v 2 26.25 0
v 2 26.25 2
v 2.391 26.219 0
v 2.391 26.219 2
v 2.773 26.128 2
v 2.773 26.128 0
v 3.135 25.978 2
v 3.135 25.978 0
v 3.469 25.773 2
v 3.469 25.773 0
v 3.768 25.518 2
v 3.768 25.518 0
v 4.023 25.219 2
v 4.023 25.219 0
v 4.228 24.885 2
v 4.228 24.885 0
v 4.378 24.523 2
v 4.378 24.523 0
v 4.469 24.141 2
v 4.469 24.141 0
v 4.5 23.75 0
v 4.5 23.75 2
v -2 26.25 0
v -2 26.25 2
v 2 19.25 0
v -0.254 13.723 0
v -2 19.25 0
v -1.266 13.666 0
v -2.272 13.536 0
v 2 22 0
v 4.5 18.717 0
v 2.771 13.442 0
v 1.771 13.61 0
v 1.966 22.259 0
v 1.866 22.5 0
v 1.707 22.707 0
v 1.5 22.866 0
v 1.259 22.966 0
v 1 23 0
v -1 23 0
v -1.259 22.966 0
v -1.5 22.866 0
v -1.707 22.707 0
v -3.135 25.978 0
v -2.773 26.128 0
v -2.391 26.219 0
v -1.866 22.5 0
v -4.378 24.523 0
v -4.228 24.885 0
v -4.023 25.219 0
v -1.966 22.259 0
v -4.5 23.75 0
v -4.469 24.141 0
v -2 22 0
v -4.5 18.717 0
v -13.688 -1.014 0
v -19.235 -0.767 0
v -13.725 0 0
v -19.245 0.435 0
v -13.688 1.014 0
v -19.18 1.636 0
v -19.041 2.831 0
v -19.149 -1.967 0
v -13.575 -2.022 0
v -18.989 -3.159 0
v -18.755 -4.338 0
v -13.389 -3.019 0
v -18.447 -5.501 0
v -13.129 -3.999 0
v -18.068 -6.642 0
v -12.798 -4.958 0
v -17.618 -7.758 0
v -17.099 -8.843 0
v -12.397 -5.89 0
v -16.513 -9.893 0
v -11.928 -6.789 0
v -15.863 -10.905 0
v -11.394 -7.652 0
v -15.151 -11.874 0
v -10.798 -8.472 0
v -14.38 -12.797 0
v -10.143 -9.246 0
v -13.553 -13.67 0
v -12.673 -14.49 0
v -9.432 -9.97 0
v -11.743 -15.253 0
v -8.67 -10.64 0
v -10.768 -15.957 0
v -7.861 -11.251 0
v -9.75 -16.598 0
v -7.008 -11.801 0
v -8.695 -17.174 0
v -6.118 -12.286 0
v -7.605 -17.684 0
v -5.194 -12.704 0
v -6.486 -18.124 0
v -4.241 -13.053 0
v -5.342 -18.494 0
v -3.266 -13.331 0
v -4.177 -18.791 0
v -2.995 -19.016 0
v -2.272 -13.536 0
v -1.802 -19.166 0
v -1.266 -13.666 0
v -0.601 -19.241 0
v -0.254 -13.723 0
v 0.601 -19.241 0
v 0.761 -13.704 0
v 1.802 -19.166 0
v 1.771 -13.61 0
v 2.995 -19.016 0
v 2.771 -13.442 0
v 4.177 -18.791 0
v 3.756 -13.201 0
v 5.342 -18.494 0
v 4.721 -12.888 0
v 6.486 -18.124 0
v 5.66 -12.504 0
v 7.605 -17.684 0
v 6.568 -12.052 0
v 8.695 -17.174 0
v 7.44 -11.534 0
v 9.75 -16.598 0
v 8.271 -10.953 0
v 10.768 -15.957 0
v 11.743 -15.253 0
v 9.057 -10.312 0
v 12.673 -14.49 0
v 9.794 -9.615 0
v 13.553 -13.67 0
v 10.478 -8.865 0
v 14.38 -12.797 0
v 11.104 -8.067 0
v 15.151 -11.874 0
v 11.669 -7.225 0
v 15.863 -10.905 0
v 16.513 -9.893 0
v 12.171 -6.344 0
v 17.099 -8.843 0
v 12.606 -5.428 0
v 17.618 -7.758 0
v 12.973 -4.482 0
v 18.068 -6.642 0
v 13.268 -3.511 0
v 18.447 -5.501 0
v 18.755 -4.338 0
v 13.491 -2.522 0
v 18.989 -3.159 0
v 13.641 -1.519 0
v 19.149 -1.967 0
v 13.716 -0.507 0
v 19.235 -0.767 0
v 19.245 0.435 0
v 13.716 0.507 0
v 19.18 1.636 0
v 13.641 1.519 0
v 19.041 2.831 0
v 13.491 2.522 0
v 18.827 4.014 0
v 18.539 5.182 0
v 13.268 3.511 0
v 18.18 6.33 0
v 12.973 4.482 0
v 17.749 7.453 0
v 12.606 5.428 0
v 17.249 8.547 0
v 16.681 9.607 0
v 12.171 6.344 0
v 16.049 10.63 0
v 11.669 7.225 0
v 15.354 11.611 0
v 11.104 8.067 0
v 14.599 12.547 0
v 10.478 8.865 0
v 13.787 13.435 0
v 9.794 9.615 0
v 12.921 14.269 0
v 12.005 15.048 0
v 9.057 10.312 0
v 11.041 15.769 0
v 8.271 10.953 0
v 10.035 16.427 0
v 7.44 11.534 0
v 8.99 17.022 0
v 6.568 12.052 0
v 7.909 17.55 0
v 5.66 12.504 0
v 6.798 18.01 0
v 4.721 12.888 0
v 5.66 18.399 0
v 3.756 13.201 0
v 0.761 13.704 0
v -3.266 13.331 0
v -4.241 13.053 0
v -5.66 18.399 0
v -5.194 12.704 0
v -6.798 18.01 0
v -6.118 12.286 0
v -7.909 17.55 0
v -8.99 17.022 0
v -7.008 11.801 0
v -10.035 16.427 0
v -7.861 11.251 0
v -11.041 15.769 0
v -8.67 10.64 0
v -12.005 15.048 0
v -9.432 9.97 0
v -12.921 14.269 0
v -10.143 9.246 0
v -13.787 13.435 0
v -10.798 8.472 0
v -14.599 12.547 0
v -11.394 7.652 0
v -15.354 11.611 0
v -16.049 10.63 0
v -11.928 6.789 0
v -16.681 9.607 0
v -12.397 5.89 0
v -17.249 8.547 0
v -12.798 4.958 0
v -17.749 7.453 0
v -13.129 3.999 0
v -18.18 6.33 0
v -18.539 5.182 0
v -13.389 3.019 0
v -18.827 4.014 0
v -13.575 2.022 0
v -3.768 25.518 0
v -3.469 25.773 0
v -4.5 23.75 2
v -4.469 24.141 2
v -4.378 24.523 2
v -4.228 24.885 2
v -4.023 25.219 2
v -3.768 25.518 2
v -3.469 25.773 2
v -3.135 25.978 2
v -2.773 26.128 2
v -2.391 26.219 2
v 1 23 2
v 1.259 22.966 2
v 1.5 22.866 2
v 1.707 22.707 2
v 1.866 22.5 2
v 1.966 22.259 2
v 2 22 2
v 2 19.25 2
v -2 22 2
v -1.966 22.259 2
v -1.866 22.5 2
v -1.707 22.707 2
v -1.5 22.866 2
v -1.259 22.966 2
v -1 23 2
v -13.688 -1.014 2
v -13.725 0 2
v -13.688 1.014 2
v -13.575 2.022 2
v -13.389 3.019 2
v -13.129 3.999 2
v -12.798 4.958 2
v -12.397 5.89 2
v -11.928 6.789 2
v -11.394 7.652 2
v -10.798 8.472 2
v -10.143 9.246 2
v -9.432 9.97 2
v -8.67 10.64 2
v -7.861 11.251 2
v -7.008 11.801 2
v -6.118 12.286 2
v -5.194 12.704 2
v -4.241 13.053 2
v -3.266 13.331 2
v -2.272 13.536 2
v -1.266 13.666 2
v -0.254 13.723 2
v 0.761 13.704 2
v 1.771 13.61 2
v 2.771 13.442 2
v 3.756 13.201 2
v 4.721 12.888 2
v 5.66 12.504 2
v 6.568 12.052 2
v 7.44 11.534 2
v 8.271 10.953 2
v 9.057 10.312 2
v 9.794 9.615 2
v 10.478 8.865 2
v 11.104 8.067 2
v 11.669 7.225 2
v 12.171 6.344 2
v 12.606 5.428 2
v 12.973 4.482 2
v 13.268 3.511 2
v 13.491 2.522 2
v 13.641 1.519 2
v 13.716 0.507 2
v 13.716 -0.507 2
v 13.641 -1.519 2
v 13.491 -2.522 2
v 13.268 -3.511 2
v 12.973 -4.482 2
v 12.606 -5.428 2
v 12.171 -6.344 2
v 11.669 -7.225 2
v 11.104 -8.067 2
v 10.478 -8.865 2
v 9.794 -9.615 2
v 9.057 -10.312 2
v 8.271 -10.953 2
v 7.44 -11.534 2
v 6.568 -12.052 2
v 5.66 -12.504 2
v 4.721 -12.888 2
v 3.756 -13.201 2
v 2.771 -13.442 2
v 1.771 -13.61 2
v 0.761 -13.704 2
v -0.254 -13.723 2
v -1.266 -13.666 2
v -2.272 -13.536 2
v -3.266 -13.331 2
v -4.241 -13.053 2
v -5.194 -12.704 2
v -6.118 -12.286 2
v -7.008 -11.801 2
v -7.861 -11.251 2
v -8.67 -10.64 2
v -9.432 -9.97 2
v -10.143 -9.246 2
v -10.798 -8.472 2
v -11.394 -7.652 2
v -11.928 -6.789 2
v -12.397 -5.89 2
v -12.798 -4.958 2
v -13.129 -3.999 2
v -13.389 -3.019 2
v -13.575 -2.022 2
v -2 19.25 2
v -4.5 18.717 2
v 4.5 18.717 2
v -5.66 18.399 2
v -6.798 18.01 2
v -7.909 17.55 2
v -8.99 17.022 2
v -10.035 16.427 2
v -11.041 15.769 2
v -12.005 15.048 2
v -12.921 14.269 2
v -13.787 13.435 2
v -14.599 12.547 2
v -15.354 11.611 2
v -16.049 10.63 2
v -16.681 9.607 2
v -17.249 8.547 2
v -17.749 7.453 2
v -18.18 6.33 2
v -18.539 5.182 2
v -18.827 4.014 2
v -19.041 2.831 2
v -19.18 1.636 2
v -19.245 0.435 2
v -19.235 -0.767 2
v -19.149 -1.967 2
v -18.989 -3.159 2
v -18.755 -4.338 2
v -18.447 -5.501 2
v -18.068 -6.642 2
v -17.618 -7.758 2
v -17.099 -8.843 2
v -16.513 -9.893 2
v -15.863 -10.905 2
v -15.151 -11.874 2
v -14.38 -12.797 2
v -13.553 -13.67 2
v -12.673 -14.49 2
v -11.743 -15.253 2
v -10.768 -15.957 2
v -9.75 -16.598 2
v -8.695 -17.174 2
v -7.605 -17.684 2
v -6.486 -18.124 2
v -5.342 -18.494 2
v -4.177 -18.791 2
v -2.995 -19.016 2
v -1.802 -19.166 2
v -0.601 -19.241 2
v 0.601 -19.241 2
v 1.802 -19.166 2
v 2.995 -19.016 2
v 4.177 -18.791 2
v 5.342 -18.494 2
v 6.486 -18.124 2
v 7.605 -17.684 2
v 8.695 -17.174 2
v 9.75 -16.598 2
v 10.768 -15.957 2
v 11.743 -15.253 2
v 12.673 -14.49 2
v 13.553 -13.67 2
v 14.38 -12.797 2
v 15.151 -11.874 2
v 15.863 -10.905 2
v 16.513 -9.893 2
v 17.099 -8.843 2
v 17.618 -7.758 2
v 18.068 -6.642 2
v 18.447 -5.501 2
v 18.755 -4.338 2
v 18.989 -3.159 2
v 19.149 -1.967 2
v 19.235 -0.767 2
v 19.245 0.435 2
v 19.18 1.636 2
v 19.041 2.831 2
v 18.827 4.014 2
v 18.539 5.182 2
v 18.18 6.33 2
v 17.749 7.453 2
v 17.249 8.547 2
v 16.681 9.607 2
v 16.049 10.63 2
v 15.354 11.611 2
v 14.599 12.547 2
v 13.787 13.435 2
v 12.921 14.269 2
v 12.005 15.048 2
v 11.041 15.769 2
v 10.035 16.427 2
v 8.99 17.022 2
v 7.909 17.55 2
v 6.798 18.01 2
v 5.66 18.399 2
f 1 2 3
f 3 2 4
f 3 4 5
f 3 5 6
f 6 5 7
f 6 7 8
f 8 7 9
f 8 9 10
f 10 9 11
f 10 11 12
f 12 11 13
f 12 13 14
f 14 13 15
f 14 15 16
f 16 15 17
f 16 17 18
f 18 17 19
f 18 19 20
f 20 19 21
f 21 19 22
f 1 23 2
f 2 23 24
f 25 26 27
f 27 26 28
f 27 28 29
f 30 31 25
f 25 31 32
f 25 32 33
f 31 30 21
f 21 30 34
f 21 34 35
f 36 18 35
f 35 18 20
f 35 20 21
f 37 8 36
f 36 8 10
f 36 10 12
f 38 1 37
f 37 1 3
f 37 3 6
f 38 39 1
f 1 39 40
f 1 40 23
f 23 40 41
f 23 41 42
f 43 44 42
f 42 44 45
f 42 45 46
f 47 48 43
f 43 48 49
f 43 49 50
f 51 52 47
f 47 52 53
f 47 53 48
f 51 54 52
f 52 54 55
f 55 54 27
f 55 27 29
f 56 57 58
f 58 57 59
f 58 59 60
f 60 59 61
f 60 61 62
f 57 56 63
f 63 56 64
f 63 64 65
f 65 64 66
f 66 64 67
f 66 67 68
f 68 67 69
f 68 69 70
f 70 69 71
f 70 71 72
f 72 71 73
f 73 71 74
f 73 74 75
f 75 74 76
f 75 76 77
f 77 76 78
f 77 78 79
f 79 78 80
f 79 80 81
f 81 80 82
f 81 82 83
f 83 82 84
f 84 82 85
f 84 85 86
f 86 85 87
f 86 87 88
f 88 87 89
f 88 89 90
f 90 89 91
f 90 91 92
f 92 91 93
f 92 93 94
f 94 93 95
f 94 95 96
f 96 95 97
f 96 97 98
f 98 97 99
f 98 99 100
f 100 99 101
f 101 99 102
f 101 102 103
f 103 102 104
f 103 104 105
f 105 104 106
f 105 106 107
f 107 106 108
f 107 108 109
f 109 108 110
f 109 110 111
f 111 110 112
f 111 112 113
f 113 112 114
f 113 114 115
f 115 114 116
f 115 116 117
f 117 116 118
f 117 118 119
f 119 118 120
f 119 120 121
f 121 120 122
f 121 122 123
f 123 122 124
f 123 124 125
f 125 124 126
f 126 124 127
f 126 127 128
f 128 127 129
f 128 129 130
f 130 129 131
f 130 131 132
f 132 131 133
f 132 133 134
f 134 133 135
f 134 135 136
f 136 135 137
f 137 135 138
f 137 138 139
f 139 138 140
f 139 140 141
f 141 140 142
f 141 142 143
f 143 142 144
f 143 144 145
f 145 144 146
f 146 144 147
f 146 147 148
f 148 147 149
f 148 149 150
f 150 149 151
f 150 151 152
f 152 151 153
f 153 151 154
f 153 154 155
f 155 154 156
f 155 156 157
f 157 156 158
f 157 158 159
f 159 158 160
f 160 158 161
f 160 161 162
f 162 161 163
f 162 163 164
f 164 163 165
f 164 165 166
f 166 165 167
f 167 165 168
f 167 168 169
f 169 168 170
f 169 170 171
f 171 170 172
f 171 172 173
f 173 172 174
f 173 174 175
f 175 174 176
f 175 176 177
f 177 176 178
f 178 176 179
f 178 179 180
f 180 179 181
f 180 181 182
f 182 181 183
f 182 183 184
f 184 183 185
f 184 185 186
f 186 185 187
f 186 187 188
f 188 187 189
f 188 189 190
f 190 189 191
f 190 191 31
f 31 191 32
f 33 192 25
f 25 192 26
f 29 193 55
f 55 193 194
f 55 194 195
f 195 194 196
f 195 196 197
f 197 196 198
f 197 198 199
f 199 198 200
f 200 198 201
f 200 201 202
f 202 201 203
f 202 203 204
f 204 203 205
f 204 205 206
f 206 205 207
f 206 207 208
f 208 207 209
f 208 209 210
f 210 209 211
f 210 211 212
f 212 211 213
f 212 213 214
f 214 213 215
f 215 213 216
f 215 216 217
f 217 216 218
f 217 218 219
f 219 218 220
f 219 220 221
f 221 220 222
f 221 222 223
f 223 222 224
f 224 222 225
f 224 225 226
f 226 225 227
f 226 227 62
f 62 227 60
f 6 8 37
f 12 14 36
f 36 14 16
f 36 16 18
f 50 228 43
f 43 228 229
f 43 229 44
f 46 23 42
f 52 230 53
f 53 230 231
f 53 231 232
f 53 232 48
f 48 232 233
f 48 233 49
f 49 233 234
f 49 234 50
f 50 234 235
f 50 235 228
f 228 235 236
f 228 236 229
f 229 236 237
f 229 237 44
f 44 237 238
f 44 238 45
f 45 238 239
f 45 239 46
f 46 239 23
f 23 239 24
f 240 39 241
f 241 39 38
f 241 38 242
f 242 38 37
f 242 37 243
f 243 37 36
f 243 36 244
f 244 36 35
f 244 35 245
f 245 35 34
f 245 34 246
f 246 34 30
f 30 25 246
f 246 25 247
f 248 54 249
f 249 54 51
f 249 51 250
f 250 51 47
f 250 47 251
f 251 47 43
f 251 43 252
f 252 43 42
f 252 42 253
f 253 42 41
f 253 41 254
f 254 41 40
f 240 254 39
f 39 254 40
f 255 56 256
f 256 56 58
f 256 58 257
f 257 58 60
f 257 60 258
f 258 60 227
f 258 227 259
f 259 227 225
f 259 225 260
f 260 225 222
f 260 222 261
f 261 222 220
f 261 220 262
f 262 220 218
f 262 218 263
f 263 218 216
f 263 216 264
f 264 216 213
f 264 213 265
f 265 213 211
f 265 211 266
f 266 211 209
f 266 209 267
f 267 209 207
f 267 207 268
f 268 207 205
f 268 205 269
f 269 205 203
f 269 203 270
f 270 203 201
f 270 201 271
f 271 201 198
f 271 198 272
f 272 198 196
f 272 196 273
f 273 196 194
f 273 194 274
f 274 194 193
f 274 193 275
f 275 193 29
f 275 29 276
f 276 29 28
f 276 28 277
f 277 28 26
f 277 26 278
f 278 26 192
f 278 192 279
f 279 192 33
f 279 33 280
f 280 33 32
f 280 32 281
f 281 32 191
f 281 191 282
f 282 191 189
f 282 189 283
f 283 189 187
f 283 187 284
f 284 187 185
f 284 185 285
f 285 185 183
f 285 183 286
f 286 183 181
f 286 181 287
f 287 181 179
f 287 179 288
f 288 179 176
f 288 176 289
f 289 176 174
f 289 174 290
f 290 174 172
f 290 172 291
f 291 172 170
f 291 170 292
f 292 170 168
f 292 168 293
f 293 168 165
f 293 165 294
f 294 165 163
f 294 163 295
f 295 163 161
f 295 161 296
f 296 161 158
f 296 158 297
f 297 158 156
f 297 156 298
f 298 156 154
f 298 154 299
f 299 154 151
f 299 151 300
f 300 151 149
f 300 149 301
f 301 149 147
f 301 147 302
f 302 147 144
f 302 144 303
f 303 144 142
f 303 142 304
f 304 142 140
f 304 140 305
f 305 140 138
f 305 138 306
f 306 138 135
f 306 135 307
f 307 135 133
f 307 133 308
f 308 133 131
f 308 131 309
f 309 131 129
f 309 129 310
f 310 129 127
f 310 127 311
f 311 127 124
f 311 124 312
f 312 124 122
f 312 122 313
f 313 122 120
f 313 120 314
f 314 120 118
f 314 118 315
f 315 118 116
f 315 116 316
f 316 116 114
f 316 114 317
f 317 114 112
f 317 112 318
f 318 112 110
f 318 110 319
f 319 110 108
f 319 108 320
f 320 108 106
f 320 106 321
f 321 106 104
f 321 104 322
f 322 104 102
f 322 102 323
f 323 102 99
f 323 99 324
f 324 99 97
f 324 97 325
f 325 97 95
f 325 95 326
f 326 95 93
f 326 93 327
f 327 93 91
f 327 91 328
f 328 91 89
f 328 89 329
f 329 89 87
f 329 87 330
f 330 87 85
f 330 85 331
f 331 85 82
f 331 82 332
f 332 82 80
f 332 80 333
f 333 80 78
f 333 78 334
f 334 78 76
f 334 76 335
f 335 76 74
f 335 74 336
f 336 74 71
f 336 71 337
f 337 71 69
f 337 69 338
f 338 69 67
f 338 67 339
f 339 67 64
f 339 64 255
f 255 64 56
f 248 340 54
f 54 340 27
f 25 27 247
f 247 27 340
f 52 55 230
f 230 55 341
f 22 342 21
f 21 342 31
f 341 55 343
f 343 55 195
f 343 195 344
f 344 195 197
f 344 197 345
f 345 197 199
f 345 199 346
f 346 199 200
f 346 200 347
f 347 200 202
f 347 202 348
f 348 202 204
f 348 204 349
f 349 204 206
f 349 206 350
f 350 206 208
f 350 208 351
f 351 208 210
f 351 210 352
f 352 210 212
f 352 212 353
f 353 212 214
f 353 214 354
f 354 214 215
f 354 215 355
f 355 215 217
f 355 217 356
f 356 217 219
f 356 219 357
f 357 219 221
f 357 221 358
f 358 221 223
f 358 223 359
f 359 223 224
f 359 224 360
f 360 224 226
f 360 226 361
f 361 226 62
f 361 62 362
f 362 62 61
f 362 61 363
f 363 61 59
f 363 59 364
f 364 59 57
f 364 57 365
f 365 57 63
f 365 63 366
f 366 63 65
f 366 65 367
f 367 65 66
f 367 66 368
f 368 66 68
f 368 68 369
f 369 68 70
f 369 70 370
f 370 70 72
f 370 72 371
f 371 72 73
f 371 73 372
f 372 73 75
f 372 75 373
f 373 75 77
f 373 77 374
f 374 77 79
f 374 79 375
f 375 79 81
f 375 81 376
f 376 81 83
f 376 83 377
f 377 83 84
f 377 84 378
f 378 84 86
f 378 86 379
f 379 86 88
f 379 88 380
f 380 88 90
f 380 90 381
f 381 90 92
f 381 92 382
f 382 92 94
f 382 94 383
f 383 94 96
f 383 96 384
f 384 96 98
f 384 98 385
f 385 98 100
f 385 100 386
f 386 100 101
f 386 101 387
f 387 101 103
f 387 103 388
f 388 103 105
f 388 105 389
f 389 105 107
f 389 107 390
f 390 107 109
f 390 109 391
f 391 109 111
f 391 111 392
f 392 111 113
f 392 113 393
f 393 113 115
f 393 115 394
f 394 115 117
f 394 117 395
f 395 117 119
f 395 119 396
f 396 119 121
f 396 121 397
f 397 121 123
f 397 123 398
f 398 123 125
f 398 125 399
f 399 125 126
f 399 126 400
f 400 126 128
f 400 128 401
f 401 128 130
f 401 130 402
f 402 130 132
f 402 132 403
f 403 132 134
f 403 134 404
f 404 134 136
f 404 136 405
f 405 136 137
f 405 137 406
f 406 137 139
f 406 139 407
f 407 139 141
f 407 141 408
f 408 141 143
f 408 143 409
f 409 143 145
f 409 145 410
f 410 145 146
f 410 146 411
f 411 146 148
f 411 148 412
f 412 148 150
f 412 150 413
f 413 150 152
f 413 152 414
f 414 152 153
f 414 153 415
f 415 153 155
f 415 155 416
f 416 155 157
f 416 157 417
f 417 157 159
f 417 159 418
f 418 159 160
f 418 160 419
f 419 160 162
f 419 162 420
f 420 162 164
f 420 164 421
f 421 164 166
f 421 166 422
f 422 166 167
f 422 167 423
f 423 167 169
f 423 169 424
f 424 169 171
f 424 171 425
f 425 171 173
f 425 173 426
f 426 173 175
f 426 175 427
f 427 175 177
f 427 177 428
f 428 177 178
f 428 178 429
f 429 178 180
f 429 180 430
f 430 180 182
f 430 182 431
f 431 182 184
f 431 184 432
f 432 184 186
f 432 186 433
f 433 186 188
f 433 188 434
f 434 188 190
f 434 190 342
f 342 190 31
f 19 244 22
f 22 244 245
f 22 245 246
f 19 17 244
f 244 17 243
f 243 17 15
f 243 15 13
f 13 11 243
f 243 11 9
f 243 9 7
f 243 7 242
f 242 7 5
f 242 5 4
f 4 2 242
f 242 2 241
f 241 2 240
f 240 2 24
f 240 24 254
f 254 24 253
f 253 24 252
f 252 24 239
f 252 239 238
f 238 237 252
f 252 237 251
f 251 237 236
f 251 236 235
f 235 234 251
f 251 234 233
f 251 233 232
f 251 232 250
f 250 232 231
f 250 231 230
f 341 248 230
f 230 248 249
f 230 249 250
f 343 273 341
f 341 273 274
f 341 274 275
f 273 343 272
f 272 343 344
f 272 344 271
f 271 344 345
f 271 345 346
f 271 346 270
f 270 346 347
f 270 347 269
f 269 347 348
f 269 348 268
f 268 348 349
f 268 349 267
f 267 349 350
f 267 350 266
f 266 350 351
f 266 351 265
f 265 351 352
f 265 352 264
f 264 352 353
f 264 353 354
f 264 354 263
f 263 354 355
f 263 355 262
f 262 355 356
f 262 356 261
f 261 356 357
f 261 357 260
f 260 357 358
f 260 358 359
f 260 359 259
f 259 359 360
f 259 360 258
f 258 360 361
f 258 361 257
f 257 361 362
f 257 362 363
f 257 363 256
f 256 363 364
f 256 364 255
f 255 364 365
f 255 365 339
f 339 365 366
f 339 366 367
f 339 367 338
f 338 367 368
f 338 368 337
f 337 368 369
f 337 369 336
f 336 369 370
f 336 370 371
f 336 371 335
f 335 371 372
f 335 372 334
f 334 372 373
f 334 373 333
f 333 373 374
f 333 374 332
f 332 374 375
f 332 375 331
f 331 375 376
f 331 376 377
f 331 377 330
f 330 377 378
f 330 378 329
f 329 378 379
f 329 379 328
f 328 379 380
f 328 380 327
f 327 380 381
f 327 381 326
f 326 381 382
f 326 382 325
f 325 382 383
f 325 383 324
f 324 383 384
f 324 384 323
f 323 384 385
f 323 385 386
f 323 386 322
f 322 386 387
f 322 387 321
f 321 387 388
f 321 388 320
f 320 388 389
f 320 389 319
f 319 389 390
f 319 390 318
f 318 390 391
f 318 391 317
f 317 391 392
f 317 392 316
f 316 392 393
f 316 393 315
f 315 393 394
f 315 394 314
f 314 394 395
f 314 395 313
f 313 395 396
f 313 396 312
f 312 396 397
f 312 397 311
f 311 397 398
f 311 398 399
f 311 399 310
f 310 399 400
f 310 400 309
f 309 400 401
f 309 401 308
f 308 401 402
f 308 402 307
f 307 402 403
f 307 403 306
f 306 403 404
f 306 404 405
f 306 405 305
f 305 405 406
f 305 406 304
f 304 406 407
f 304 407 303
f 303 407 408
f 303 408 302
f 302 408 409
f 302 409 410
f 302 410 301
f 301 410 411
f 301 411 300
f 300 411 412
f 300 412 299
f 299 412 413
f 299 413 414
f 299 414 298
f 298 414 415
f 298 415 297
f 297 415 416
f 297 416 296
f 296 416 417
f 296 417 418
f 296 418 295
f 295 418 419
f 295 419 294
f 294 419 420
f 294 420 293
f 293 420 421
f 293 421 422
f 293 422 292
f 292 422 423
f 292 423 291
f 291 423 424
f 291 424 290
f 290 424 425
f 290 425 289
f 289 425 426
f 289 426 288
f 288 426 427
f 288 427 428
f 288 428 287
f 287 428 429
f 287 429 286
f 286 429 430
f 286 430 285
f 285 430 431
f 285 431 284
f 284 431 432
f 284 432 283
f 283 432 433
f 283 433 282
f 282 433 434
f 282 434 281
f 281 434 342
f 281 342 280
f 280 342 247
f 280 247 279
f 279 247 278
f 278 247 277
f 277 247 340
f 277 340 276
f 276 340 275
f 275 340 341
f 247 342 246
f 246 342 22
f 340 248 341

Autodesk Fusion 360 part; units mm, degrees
sketch "Sketch1" plane through (0, 0, 0) normal (0, 0, 1) x (1, 0, 0)
  circle A0 centre (0, 0) radius 19.25
  circle A1 centre (0, 0) radius 13.725
  line L0 (0, 0) -> (4.5, 0)
  line L1 (4.5, 0) -> (4.5, 19.25)
  line L2 (4.5, 19.25) -> (0, 19.25)
  line L3 (0, 19.25) -> (0, 0)
  line L4 (0, 0) -> (-4.5, 0)
  line L5 (-4.5, 0) -> (-4.5, 19.25)
  line L6 (-4.5, 19.25) -> (0, 19.25)
  line L7 (0, 19.25) -> (0, 0)
  line L8 (4.5, 19.25) -> (-4.5, 19.25)
  line L9 (-4.5, 19.25) -> (-4.5, 26.25)
  line L10 (-4.5, 26.25) -> (4.5, 26.25)
  line L11 (4.5, 26.25) -> (4.5, 19.25)
  line L12 (0, 19.25) -> (2, 19.25)
  line L13 (2, 19.25) -> (2, 23)
  line L14 (2, 23) -> (0, 23)
  line L15 (0, 23) -> (0, 19.25)
  line L16 (0, 19.25) -> (-2, 19.25)
  line L17 (-2, 19.25) -> (-2, 23)
  line L18 (-2, 23) -> (0, 23)
  line L19 (0, 23) -> (0, 19.25)
  dimension "d1" = 38.5
  dimension "d2" = 27.45
  dimension "d3" = 4.5
  dimension "d4" = 19.25
  dimension "d5" = 4.5
  dimension "d6" = 19.25
  dimension "d7" = 7
extrude "Extrude1" add sketch "Sketch1" along normal blind 2 contours A0 A1 L1 L5 | A0 A1 L1 L3 L7 | A0 L1 L2 L8 L12 | A0 L5 L6 L8 L16 | A0 A1 L3 L5 L7 | L2 L6 L8 L9 L10 L11 L13 L14 L17 L18
fillet "Fillet1" radius 1 1 edges at (-2, 23, 1)
fillet "Fillet2" radius 1 1 edges at (2, 23, 1)
fillet "Fillet3" radius 2.5 1 edges at (-4.5, 26.25, 1)
fillet "Fillet4" radius 2.5 1 edges at (4.5, 26.25, 1)
